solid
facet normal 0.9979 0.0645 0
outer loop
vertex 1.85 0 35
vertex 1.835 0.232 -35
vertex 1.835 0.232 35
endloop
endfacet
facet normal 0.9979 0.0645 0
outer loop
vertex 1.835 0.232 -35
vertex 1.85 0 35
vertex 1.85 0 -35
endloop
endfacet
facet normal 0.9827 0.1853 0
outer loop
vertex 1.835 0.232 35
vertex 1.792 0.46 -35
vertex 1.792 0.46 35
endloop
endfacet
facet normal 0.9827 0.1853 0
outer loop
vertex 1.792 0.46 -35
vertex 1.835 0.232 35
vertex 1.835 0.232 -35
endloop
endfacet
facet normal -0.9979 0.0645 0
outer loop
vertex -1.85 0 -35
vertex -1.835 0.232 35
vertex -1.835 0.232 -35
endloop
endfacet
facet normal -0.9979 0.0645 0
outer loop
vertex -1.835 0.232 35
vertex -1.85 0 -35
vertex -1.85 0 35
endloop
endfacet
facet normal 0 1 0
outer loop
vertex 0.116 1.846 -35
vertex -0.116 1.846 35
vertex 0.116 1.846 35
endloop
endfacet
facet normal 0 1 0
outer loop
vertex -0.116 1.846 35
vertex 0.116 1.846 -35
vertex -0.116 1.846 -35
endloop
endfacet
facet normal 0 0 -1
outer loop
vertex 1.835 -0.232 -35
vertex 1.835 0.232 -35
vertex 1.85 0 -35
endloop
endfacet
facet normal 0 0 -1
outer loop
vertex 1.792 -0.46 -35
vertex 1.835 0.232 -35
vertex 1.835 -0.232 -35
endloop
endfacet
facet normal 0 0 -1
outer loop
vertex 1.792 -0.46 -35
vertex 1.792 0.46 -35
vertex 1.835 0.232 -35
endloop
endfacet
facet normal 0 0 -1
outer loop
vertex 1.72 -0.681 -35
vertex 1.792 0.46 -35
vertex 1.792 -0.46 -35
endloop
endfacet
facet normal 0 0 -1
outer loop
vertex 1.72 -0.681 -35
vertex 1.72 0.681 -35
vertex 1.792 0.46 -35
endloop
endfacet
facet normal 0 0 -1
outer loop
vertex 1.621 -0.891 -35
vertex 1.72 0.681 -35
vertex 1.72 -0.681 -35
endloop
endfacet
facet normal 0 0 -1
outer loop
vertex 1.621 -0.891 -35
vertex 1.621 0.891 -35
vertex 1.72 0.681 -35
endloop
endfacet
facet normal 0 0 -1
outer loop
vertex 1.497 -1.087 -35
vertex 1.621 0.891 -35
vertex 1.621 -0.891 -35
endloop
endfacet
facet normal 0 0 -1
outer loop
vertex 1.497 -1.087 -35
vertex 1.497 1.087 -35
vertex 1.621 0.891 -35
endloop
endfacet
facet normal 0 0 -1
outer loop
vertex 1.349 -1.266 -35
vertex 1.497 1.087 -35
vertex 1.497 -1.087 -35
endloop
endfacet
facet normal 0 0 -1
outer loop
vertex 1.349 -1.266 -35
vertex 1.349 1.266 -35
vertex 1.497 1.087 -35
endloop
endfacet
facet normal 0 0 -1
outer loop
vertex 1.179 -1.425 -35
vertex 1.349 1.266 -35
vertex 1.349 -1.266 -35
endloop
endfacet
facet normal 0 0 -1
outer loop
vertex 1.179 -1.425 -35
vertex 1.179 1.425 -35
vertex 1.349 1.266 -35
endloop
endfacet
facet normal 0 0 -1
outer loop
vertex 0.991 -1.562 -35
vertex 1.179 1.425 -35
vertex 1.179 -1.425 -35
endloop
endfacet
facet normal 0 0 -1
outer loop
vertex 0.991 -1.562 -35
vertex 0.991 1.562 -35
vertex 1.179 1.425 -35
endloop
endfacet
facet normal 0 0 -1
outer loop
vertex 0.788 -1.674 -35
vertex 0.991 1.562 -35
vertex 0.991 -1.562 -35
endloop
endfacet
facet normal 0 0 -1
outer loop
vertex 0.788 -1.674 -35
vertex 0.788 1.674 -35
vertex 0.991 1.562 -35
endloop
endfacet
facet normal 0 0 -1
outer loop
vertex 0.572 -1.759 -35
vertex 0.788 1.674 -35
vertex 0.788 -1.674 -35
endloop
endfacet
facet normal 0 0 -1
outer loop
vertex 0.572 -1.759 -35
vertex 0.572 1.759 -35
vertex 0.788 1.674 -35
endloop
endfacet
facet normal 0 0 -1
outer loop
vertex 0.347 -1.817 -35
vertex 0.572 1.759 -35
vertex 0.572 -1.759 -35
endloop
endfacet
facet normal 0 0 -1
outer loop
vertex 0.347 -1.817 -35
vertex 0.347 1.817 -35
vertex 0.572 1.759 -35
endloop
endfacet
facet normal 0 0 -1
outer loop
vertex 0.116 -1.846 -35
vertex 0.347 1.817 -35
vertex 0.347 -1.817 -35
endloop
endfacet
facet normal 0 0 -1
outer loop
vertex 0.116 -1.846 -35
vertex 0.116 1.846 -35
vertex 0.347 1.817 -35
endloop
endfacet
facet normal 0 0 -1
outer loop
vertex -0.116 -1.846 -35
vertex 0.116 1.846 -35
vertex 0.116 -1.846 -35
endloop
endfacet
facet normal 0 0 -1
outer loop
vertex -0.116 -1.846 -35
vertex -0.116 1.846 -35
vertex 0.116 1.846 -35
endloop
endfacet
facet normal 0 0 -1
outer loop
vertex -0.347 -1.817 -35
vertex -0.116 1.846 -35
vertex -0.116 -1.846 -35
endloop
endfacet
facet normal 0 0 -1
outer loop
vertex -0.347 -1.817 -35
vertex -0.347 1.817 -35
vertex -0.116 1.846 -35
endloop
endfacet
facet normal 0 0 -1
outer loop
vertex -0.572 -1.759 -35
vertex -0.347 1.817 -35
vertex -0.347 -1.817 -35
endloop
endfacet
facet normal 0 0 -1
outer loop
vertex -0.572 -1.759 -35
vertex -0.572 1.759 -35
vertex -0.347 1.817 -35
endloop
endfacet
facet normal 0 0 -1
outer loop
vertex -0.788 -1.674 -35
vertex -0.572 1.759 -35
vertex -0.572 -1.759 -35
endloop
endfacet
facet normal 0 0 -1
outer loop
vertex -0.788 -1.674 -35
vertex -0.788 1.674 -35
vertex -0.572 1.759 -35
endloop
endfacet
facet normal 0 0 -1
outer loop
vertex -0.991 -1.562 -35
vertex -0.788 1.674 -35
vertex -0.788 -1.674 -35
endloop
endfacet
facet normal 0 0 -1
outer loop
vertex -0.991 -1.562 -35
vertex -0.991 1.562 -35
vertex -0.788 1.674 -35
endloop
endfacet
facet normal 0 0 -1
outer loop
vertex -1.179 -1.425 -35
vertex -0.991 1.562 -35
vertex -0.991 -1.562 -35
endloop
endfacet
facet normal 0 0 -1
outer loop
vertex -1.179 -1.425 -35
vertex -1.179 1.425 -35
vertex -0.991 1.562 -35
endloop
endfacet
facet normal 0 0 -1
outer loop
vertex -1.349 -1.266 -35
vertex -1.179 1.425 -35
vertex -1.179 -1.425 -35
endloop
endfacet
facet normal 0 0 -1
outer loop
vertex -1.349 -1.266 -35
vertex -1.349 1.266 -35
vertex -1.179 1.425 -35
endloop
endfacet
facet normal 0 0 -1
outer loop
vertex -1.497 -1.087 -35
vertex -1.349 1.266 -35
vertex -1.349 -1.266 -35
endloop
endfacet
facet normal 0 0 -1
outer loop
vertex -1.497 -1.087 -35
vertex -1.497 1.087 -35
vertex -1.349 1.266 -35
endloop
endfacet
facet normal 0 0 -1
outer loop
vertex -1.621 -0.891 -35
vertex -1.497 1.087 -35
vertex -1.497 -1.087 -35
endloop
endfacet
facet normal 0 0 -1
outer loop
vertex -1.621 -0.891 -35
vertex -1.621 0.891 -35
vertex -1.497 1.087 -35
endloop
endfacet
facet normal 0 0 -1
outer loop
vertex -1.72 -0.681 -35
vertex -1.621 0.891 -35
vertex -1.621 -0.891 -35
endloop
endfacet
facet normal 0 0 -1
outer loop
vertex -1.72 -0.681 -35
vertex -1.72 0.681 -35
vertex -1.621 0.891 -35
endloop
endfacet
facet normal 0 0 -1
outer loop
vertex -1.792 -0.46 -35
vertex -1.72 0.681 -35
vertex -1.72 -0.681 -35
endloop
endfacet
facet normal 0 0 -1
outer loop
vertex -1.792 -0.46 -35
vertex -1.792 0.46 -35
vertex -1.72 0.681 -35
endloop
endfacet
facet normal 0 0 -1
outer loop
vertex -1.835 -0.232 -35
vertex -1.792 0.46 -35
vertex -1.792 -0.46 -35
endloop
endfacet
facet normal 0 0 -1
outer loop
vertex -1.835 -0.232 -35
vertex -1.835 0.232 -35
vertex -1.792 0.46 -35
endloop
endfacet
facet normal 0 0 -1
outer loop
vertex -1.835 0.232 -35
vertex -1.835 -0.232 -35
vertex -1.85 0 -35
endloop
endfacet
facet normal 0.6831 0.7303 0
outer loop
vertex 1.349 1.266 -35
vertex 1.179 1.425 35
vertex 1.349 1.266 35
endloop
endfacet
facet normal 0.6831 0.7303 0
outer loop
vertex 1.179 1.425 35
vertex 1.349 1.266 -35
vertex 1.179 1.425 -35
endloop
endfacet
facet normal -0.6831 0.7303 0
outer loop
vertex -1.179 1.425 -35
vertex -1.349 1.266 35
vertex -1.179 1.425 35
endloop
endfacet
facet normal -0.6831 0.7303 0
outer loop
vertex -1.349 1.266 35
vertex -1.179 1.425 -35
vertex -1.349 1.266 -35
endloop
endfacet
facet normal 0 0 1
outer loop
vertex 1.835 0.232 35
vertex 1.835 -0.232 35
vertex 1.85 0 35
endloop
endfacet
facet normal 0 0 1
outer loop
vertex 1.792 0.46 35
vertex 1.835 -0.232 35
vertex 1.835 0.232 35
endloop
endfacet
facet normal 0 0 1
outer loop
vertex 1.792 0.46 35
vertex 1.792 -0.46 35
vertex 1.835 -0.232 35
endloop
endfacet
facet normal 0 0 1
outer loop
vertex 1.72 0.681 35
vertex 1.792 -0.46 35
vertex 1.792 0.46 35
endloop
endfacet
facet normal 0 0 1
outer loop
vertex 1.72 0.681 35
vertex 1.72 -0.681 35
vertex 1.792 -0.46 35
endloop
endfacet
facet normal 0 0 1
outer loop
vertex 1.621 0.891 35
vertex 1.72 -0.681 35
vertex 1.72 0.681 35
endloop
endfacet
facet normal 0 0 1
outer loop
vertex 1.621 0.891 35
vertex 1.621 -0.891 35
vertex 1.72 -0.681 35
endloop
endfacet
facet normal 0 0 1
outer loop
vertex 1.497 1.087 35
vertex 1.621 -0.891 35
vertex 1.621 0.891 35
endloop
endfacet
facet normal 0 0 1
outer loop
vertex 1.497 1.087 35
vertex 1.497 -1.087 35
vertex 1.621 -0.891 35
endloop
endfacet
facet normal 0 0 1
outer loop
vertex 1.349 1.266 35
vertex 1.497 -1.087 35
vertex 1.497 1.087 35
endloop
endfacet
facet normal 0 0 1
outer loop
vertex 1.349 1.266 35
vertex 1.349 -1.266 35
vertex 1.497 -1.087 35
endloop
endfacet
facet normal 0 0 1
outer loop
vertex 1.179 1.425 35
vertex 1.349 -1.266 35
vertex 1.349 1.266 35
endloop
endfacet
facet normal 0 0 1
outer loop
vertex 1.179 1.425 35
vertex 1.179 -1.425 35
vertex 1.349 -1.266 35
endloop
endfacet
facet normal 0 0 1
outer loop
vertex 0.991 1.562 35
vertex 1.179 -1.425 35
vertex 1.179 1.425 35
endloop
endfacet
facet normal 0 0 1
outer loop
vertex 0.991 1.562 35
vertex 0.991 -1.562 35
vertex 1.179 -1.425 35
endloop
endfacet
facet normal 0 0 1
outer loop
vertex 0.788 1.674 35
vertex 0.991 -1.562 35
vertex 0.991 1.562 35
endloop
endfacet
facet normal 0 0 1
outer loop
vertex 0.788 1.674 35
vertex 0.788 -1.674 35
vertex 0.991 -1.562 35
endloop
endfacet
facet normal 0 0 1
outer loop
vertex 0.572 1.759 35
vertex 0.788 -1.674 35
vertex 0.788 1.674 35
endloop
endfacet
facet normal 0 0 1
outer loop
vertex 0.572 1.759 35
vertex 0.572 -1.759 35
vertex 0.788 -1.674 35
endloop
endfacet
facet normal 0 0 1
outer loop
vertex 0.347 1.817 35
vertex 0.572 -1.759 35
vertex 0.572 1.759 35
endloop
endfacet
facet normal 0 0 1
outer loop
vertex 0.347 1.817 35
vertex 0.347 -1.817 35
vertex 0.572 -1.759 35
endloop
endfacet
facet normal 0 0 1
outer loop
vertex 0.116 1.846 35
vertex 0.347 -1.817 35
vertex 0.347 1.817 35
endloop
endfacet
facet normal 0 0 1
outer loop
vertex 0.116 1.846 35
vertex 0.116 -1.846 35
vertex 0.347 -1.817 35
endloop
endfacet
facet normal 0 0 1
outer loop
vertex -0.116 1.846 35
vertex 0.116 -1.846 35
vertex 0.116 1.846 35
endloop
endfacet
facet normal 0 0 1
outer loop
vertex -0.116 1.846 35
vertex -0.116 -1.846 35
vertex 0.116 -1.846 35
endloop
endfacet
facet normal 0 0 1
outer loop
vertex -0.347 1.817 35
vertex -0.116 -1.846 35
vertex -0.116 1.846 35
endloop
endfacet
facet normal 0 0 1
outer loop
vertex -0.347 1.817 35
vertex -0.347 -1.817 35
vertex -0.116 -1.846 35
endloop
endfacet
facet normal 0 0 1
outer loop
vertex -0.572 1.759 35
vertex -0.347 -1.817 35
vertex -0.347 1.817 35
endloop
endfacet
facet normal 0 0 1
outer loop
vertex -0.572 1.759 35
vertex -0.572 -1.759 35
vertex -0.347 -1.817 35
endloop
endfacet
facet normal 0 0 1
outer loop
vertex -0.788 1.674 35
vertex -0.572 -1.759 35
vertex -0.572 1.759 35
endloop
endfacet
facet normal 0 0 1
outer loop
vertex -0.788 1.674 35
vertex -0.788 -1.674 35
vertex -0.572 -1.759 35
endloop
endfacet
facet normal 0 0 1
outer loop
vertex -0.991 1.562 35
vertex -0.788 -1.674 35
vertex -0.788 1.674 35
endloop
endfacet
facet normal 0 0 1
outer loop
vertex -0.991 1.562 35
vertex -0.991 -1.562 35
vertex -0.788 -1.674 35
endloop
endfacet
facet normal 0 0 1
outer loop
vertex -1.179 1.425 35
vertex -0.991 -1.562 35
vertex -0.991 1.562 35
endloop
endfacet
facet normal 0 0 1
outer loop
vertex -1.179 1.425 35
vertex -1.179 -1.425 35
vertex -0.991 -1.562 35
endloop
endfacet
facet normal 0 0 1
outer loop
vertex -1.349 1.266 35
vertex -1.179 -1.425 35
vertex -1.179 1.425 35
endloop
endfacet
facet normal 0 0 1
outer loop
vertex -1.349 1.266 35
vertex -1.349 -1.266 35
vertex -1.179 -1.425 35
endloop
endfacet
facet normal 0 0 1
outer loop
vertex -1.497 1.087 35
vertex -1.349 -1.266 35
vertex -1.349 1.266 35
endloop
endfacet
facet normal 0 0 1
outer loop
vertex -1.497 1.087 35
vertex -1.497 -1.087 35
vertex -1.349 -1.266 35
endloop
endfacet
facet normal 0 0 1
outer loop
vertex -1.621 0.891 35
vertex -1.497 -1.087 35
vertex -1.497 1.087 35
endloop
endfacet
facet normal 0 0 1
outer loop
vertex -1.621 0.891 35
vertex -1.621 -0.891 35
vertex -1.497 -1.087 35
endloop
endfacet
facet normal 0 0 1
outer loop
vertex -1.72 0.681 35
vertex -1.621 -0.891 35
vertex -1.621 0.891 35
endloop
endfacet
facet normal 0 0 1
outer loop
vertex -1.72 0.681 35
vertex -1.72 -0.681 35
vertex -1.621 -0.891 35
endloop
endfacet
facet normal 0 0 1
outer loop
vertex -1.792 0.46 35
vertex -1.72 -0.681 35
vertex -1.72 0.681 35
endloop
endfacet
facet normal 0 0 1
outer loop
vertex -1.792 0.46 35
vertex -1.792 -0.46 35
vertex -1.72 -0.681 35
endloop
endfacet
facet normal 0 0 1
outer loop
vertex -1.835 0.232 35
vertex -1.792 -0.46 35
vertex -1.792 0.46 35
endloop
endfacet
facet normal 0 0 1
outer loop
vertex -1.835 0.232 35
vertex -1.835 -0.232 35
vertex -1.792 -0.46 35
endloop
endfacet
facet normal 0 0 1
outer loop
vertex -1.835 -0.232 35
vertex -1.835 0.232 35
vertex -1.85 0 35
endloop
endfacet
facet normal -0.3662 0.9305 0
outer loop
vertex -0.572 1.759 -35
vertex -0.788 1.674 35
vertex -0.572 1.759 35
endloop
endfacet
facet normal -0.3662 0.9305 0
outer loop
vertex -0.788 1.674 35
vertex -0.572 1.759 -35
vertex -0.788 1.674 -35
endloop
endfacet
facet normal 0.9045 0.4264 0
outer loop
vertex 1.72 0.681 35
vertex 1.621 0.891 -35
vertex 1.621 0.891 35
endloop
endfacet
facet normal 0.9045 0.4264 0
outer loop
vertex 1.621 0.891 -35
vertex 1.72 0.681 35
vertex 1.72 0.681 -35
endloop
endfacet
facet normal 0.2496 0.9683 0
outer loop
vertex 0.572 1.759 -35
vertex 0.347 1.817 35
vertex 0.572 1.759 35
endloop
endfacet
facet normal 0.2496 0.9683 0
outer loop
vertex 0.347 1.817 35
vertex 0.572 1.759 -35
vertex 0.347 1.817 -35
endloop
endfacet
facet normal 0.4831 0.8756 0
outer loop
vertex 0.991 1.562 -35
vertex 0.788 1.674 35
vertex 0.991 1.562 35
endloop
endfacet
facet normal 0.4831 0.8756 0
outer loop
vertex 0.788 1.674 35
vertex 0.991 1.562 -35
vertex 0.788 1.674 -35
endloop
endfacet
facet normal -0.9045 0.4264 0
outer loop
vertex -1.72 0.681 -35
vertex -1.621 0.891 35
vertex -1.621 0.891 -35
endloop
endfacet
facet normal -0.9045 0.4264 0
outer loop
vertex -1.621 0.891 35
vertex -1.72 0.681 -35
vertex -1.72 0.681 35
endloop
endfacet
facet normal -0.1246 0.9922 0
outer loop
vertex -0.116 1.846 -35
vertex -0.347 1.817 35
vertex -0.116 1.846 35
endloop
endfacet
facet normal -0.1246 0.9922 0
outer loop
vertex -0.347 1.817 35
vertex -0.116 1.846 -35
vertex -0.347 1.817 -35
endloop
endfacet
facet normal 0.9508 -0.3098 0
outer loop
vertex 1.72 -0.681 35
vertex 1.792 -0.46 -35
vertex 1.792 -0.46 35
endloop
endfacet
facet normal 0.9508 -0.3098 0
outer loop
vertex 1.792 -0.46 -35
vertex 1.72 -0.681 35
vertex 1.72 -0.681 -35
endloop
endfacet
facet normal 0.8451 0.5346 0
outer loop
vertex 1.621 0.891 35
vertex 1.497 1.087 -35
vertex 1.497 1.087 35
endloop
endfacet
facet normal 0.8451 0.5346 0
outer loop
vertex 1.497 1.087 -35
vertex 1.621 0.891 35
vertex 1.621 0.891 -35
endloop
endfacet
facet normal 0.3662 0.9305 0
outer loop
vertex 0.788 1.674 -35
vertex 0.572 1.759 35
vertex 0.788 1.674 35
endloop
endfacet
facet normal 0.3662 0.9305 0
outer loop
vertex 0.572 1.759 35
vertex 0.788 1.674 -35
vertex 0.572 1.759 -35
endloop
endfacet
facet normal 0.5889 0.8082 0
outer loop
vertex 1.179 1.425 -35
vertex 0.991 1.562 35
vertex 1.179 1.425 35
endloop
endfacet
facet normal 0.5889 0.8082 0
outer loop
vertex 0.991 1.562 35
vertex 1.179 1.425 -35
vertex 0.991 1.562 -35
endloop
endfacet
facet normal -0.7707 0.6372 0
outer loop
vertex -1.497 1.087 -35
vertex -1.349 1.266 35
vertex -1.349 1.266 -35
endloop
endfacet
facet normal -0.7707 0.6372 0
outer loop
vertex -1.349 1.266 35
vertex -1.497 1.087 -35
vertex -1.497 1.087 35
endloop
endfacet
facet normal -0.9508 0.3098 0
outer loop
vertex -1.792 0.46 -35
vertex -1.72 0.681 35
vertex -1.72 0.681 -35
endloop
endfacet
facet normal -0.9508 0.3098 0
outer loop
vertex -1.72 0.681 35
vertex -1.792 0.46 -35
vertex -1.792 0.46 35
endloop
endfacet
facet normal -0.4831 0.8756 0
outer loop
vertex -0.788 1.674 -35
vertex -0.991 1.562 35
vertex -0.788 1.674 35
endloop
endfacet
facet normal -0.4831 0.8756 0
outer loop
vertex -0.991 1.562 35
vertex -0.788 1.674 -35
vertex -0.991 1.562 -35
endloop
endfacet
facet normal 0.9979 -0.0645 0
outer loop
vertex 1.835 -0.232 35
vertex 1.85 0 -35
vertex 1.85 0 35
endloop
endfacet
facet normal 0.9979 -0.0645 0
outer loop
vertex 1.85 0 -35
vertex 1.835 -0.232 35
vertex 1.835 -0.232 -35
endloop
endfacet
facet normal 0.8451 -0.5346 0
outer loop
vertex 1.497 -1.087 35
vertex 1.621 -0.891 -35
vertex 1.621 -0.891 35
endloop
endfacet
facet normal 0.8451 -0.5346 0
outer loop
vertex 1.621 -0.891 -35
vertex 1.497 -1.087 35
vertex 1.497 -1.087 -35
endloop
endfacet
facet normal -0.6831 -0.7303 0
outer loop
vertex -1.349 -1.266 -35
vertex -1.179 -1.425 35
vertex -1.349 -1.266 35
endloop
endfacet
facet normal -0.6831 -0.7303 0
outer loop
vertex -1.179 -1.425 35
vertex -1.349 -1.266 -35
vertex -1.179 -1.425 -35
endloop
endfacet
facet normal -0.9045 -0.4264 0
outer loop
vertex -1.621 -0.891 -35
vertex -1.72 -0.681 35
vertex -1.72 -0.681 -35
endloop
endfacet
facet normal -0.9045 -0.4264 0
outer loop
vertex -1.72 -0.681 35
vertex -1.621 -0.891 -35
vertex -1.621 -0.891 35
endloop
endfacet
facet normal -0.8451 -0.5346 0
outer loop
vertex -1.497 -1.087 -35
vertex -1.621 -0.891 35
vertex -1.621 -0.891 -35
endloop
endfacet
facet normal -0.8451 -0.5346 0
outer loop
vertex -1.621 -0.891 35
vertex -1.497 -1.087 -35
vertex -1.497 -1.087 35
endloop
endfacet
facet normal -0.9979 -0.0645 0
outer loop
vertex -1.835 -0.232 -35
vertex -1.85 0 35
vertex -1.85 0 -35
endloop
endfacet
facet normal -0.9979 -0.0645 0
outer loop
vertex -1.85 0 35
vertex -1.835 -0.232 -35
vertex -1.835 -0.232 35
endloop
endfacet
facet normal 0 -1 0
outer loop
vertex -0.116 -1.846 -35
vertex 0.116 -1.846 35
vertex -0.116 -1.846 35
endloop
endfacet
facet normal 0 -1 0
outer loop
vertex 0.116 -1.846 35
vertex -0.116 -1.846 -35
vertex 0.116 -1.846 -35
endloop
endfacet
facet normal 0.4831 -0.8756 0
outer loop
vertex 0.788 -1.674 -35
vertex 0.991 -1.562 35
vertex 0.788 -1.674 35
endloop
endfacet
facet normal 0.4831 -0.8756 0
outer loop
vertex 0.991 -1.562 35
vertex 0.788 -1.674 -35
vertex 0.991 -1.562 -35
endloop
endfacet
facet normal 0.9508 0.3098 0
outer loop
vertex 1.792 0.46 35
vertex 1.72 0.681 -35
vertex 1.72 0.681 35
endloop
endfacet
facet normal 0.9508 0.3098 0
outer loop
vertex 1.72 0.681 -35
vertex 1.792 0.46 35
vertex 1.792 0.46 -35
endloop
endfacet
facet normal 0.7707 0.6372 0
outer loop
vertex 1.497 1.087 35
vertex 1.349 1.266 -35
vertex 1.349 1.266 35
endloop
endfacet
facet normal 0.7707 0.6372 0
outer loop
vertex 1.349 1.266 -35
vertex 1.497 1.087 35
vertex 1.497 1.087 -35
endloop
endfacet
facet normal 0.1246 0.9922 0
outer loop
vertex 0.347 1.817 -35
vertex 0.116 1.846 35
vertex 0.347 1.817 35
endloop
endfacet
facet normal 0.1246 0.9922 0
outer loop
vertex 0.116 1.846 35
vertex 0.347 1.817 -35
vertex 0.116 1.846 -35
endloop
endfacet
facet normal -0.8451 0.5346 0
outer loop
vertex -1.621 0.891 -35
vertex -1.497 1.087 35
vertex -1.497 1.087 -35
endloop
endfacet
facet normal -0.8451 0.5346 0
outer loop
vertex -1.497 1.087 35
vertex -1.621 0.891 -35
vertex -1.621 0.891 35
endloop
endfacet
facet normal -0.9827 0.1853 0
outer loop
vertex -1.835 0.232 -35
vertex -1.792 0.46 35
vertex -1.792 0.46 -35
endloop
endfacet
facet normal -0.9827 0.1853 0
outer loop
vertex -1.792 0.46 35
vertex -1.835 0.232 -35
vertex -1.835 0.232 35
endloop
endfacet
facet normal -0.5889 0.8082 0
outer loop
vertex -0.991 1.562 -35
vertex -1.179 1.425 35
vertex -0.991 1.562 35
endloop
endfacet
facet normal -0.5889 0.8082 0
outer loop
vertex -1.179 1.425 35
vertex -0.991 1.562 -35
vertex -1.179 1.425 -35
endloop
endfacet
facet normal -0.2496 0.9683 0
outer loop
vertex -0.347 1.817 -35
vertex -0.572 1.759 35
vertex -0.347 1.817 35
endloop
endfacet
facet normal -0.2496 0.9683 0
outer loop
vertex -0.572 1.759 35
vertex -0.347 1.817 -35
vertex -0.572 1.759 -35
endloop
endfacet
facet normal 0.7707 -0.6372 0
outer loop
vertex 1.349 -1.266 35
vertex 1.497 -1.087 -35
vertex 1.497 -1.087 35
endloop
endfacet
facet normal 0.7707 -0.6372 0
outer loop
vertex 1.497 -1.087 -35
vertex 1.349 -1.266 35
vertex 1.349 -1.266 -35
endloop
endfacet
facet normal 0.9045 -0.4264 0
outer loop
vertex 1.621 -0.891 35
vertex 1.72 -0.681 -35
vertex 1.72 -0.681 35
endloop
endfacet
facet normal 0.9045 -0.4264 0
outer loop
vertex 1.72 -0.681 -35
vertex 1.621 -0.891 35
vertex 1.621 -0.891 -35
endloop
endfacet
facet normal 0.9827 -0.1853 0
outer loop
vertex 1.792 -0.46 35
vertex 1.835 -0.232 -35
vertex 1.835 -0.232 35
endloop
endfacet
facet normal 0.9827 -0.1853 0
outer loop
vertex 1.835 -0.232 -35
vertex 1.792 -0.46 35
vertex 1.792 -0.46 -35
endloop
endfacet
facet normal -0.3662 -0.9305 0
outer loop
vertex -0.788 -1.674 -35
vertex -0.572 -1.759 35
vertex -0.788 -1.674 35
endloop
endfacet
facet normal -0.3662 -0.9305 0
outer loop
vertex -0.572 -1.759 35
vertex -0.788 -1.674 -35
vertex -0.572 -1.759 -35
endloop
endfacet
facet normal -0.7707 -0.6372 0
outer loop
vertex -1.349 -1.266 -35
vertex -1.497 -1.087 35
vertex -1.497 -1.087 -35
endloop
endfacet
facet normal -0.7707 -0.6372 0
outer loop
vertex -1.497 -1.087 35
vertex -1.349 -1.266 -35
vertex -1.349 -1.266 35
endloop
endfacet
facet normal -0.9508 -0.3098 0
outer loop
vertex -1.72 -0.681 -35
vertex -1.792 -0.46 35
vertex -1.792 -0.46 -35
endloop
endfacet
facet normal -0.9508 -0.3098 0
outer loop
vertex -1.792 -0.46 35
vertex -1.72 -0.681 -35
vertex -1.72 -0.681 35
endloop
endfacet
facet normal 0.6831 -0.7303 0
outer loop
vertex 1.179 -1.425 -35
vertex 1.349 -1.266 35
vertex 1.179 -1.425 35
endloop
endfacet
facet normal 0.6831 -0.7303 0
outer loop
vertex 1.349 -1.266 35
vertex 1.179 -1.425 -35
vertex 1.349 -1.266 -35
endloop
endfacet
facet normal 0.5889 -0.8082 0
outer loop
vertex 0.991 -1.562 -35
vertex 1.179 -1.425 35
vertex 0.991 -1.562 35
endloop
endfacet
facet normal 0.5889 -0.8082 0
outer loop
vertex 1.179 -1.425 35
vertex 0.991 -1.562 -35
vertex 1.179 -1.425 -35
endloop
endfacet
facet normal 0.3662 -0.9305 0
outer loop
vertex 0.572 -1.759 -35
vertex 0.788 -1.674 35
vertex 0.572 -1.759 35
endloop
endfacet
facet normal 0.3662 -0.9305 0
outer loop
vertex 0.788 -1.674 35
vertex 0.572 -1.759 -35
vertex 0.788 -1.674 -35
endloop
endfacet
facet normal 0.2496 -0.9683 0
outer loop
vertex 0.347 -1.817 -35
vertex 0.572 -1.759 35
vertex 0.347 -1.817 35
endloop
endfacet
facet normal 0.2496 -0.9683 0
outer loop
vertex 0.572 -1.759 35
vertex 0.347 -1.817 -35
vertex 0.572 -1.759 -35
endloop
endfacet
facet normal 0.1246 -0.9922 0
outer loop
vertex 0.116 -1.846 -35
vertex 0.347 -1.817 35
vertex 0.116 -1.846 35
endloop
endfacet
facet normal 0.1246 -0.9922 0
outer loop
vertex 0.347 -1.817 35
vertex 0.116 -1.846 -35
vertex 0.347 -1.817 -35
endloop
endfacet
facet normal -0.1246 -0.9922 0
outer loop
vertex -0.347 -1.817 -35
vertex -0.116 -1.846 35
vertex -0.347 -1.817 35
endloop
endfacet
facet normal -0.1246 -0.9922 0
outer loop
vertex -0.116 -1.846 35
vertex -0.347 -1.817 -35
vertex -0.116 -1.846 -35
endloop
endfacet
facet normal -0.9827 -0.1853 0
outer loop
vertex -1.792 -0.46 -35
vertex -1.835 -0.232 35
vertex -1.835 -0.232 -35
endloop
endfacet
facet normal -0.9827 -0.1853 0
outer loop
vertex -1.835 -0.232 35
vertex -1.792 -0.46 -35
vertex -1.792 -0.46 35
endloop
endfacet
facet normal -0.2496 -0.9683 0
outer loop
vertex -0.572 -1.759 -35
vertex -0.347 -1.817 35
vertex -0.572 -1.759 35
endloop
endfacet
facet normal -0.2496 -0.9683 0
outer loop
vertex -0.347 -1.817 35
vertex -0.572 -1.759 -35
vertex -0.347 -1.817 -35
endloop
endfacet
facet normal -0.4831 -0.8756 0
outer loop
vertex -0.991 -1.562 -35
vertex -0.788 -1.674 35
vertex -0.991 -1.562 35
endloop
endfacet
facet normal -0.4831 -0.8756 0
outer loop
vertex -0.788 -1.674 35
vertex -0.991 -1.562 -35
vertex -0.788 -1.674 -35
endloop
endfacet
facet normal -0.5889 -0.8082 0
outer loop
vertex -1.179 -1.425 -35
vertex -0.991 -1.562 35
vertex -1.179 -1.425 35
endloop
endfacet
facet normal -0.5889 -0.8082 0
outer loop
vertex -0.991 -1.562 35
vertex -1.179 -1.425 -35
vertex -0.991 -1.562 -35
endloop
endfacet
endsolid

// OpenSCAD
$fn = 50;


difference() {
	union() {
		translate(v = [0, 0, -35.0000000000]) {
			cylinder(h = 70, r = 1.8500000000);
		}
	}
	union() {
		translate(v = [0, 0, -100.0000000000]) {
			cylinder(h = 200, r = 0);
		}
	}
}
